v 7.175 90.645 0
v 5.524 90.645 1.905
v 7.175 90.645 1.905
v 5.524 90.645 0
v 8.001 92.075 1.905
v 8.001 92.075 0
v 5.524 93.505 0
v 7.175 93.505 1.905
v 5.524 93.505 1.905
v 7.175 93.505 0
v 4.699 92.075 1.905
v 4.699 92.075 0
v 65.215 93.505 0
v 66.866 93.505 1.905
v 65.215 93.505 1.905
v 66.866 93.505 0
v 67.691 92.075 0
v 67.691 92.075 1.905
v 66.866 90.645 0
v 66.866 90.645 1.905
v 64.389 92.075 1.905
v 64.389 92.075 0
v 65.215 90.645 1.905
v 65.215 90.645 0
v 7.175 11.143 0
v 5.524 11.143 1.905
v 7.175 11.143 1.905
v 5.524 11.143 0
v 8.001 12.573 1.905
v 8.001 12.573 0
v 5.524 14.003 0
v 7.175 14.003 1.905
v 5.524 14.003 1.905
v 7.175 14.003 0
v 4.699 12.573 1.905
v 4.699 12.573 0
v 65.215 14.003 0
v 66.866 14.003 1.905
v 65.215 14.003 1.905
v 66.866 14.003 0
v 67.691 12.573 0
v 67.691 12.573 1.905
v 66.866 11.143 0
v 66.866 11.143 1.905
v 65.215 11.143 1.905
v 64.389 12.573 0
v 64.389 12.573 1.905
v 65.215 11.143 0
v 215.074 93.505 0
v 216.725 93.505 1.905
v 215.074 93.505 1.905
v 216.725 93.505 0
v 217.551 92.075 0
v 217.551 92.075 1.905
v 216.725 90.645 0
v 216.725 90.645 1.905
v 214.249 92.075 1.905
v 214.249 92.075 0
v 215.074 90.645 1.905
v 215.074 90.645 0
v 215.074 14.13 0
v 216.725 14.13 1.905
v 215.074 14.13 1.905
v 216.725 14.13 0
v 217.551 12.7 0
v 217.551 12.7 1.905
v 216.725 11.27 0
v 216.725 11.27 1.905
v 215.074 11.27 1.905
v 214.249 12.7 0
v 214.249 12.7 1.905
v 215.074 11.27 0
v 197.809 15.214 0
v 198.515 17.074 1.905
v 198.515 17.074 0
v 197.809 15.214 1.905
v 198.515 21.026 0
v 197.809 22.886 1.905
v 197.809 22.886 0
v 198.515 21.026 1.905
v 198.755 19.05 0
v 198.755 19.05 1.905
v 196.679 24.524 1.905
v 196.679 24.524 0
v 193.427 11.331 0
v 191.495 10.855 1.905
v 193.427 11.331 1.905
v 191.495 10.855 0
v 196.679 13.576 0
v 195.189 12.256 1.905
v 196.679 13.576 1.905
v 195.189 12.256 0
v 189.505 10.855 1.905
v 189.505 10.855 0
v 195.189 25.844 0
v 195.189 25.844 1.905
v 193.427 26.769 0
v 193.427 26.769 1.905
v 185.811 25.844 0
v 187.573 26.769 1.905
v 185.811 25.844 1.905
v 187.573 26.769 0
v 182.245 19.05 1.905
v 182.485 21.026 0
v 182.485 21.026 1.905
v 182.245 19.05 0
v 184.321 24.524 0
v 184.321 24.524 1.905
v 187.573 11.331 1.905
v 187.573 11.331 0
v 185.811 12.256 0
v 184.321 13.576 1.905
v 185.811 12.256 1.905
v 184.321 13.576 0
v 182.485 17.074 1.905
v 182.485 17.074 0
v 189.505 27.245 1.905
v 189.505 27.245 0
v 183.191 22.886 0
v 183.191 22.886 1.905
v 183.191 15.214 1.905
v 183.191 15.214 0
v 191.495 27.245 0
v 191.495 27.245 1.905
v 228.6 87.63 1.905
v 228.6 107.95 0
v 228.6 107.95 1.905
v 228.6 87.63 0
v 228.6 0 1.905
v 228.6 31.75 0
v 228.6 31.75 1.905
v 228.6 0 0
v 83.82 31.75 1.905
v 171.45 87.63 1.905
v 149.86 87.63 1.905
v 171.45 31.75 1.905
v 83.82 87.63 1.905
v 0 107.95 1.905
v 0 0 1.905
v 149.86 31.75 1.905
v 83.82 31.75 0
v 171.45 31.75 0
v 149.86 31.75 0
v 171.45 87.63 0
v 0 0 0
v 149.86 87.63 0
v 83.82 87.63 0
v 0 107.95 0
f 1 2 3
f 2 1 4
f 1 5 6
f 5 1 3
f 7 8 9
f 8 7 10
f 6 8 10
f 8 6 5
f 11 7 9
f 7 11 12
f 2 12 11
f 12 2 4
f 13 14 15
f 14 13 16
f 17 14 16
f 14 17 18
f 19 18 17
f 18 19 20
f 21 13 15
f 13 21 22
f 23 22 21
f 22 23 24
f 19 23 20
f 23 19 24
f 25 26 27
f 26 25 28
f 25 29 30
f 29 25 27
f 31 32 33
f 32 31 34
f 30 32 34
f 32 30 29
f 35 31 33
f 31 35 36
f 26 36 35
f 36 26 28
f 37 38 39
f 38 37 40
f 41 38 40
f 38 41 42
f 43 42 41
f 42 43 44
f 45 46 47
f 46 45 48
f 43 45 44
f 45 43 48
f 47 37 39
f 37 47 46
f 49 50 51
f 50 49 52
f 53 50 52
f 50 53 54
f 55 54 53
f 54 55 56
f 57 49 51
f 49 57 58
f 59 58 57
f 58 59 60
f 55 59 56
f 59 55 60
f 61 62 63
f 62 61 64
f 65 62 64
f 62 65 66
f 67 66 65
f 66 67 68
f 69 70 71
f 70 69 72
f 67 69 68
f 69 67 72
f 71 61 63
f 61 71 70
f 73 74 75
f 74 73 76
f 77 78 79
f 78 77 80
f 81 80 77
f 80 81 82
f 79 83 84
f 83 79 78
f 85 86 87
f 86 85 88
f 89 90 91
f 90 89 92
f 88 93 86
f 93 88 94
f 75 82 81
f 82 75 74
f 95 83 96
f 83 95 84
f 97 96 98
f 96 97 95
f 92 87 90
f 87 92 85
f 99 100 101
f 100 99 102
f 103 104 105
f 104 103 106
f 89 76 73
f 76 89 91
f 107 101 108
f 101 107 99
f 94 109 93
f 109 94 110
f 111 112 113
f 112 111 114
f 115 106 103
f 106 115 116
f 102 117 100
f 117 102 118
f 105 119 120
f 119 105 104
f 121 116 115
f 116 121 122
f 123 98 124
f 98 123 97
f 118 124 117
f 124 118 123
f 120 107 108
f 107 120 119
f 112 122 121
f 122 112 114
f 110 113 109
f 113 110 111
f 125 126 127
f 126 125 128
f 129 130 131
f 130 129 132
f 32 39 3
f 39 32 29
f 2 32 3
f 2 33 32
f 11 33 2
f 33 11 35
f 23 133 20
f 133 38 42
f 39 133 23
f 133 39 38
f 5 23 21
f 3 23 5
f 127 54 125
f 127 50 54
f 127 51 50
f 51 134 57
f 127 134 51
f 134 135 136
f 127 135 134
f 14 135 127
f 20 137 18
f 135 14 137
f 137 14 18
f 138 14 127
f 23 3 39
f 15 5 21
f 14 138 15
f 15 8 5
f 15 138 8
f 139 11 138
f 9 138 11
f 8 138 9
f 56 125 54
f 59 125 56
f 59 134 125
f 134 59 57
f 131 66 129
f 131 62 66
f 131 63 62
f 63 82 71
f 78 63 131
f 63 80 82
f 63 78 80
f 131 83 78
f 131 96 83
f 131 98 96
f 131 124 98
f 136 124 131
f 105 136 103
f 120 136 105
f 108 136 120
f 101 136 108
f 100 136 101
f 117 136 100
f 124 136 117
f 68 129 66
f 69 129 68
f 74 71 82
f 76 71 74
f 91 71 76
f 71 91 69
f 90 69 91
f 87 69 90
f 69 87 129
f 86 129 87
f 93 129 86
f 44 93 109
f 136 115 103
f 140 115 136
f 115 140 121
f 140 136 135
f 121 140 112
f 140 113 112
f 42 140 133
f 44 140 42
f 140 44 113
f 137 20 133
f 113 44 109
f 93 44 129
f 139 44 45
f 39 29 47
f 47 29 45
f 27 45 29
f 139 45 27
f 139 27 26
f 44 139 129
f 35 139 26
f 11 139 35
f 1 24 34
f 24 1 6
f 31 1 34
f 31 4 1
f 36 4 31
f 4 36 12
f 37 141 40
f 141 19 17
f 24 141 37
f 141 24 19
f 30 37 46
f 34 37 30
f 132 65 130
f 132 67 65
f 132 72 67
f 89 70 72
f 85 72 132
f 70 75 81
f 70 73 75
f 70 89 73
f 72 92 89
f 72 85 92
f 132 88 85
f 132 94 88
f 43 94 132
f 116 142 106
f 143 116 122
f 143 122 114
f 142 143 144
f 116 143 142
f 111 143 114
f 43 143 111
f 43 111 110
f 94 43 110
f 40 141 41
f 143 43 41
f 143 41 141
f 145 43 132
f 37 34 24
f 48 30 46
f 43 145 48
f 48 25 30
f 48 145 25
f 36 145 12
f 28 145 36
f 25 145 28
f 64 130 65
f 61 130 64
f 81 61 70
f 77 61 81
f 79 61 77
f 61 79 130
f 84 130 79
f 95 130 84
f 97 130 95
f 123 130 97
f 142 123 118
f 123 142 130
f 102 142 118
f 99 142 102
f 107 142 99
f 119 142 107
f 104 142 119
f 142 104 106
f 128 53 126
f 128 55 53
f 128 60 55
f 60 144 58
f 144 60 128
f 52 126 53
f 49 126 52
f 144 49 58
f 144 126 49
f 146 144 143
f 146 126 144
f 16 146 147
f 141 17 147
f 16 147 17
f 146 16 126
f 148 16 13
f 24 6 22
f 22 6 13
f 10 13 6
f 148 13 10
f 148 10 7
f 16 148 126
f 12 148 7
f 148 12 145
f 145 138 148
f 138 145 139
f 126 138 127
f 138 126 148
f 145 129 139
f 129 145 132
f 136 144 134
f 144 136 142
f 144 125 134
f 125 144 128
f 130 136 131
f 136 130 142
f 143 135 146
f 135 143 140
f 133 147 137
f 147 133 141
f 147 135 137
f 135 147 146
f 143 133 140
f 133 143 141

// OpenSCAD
mm = 25.4; // millimeters per inch

width = 9 * mm;
height = 4.25 * mm;
thickness = 0.075 * mm;

monitor_top_xy = [0.25 * mm, height - 0.625 * mm];
monitor_dimensions = [2.35 * mm, 3.13 * mm];

screw_hole_diameter = 0.13 * mm;
reset_hole = [7.5 * mm, height - 3.5 * mm, 0.65 * mm];

holes = [
    [monitor_top_xy[0], monitor_top_xy[1], screw_hole_diameter],
    [monitor_top_xy[0] + monitor_dimensions[0], monitor_top_xy[1], screw_hole_diameter],
    [monitor_top_xy[0], monitor_top_xy[1] - monitor_dimensions[1], screw_hole_diameter],
    [monitor_top_xy[0] + monitor_dimensions[0], monitor_top_xy[1] - monitor_dimensions[1], screw_hole_diameter],

    [8.5 * mm, monitor_top_xy[1], screw_hole_diameter],
    [8.5 * mm, monitor_top_xy[1] - 3.125 * mm, screw_hole_diameter],

    [reset_hole[0], reset_hole[1], reset_hole[2]],
];


usb_hole_dimensions = [2.25 * mm, 2.2 * mm];
usb_hole = [width - usb_hole_dimensions[0], height - 3 * mm];

cpu_hole_dimensions = [2.6 * mm, 2.2 * mm];
cpu_hole = [3.3 * mm, height - 3 * mm];

difference() {
    cube([width, height, thickness], center = false);

    for (pos = holes) {
        translate([pos[0], pos[1], thickness / 2])
            cylinder(h = thickness + 1, d = pos[2], center = true);
    }

    translate([usb_hole[0], usb_hole[1], 0])
        cube([usb_hole_dimensions[0], usb_hole_dimensions[1], thickness + 1], center = false);

    translate([cpu_hole[0], cpu_hole[1], 0])
        cube([cpu_hole_dimensions[0], cpu_hole_dimensions[1], thickness + 1], center = false);
}
